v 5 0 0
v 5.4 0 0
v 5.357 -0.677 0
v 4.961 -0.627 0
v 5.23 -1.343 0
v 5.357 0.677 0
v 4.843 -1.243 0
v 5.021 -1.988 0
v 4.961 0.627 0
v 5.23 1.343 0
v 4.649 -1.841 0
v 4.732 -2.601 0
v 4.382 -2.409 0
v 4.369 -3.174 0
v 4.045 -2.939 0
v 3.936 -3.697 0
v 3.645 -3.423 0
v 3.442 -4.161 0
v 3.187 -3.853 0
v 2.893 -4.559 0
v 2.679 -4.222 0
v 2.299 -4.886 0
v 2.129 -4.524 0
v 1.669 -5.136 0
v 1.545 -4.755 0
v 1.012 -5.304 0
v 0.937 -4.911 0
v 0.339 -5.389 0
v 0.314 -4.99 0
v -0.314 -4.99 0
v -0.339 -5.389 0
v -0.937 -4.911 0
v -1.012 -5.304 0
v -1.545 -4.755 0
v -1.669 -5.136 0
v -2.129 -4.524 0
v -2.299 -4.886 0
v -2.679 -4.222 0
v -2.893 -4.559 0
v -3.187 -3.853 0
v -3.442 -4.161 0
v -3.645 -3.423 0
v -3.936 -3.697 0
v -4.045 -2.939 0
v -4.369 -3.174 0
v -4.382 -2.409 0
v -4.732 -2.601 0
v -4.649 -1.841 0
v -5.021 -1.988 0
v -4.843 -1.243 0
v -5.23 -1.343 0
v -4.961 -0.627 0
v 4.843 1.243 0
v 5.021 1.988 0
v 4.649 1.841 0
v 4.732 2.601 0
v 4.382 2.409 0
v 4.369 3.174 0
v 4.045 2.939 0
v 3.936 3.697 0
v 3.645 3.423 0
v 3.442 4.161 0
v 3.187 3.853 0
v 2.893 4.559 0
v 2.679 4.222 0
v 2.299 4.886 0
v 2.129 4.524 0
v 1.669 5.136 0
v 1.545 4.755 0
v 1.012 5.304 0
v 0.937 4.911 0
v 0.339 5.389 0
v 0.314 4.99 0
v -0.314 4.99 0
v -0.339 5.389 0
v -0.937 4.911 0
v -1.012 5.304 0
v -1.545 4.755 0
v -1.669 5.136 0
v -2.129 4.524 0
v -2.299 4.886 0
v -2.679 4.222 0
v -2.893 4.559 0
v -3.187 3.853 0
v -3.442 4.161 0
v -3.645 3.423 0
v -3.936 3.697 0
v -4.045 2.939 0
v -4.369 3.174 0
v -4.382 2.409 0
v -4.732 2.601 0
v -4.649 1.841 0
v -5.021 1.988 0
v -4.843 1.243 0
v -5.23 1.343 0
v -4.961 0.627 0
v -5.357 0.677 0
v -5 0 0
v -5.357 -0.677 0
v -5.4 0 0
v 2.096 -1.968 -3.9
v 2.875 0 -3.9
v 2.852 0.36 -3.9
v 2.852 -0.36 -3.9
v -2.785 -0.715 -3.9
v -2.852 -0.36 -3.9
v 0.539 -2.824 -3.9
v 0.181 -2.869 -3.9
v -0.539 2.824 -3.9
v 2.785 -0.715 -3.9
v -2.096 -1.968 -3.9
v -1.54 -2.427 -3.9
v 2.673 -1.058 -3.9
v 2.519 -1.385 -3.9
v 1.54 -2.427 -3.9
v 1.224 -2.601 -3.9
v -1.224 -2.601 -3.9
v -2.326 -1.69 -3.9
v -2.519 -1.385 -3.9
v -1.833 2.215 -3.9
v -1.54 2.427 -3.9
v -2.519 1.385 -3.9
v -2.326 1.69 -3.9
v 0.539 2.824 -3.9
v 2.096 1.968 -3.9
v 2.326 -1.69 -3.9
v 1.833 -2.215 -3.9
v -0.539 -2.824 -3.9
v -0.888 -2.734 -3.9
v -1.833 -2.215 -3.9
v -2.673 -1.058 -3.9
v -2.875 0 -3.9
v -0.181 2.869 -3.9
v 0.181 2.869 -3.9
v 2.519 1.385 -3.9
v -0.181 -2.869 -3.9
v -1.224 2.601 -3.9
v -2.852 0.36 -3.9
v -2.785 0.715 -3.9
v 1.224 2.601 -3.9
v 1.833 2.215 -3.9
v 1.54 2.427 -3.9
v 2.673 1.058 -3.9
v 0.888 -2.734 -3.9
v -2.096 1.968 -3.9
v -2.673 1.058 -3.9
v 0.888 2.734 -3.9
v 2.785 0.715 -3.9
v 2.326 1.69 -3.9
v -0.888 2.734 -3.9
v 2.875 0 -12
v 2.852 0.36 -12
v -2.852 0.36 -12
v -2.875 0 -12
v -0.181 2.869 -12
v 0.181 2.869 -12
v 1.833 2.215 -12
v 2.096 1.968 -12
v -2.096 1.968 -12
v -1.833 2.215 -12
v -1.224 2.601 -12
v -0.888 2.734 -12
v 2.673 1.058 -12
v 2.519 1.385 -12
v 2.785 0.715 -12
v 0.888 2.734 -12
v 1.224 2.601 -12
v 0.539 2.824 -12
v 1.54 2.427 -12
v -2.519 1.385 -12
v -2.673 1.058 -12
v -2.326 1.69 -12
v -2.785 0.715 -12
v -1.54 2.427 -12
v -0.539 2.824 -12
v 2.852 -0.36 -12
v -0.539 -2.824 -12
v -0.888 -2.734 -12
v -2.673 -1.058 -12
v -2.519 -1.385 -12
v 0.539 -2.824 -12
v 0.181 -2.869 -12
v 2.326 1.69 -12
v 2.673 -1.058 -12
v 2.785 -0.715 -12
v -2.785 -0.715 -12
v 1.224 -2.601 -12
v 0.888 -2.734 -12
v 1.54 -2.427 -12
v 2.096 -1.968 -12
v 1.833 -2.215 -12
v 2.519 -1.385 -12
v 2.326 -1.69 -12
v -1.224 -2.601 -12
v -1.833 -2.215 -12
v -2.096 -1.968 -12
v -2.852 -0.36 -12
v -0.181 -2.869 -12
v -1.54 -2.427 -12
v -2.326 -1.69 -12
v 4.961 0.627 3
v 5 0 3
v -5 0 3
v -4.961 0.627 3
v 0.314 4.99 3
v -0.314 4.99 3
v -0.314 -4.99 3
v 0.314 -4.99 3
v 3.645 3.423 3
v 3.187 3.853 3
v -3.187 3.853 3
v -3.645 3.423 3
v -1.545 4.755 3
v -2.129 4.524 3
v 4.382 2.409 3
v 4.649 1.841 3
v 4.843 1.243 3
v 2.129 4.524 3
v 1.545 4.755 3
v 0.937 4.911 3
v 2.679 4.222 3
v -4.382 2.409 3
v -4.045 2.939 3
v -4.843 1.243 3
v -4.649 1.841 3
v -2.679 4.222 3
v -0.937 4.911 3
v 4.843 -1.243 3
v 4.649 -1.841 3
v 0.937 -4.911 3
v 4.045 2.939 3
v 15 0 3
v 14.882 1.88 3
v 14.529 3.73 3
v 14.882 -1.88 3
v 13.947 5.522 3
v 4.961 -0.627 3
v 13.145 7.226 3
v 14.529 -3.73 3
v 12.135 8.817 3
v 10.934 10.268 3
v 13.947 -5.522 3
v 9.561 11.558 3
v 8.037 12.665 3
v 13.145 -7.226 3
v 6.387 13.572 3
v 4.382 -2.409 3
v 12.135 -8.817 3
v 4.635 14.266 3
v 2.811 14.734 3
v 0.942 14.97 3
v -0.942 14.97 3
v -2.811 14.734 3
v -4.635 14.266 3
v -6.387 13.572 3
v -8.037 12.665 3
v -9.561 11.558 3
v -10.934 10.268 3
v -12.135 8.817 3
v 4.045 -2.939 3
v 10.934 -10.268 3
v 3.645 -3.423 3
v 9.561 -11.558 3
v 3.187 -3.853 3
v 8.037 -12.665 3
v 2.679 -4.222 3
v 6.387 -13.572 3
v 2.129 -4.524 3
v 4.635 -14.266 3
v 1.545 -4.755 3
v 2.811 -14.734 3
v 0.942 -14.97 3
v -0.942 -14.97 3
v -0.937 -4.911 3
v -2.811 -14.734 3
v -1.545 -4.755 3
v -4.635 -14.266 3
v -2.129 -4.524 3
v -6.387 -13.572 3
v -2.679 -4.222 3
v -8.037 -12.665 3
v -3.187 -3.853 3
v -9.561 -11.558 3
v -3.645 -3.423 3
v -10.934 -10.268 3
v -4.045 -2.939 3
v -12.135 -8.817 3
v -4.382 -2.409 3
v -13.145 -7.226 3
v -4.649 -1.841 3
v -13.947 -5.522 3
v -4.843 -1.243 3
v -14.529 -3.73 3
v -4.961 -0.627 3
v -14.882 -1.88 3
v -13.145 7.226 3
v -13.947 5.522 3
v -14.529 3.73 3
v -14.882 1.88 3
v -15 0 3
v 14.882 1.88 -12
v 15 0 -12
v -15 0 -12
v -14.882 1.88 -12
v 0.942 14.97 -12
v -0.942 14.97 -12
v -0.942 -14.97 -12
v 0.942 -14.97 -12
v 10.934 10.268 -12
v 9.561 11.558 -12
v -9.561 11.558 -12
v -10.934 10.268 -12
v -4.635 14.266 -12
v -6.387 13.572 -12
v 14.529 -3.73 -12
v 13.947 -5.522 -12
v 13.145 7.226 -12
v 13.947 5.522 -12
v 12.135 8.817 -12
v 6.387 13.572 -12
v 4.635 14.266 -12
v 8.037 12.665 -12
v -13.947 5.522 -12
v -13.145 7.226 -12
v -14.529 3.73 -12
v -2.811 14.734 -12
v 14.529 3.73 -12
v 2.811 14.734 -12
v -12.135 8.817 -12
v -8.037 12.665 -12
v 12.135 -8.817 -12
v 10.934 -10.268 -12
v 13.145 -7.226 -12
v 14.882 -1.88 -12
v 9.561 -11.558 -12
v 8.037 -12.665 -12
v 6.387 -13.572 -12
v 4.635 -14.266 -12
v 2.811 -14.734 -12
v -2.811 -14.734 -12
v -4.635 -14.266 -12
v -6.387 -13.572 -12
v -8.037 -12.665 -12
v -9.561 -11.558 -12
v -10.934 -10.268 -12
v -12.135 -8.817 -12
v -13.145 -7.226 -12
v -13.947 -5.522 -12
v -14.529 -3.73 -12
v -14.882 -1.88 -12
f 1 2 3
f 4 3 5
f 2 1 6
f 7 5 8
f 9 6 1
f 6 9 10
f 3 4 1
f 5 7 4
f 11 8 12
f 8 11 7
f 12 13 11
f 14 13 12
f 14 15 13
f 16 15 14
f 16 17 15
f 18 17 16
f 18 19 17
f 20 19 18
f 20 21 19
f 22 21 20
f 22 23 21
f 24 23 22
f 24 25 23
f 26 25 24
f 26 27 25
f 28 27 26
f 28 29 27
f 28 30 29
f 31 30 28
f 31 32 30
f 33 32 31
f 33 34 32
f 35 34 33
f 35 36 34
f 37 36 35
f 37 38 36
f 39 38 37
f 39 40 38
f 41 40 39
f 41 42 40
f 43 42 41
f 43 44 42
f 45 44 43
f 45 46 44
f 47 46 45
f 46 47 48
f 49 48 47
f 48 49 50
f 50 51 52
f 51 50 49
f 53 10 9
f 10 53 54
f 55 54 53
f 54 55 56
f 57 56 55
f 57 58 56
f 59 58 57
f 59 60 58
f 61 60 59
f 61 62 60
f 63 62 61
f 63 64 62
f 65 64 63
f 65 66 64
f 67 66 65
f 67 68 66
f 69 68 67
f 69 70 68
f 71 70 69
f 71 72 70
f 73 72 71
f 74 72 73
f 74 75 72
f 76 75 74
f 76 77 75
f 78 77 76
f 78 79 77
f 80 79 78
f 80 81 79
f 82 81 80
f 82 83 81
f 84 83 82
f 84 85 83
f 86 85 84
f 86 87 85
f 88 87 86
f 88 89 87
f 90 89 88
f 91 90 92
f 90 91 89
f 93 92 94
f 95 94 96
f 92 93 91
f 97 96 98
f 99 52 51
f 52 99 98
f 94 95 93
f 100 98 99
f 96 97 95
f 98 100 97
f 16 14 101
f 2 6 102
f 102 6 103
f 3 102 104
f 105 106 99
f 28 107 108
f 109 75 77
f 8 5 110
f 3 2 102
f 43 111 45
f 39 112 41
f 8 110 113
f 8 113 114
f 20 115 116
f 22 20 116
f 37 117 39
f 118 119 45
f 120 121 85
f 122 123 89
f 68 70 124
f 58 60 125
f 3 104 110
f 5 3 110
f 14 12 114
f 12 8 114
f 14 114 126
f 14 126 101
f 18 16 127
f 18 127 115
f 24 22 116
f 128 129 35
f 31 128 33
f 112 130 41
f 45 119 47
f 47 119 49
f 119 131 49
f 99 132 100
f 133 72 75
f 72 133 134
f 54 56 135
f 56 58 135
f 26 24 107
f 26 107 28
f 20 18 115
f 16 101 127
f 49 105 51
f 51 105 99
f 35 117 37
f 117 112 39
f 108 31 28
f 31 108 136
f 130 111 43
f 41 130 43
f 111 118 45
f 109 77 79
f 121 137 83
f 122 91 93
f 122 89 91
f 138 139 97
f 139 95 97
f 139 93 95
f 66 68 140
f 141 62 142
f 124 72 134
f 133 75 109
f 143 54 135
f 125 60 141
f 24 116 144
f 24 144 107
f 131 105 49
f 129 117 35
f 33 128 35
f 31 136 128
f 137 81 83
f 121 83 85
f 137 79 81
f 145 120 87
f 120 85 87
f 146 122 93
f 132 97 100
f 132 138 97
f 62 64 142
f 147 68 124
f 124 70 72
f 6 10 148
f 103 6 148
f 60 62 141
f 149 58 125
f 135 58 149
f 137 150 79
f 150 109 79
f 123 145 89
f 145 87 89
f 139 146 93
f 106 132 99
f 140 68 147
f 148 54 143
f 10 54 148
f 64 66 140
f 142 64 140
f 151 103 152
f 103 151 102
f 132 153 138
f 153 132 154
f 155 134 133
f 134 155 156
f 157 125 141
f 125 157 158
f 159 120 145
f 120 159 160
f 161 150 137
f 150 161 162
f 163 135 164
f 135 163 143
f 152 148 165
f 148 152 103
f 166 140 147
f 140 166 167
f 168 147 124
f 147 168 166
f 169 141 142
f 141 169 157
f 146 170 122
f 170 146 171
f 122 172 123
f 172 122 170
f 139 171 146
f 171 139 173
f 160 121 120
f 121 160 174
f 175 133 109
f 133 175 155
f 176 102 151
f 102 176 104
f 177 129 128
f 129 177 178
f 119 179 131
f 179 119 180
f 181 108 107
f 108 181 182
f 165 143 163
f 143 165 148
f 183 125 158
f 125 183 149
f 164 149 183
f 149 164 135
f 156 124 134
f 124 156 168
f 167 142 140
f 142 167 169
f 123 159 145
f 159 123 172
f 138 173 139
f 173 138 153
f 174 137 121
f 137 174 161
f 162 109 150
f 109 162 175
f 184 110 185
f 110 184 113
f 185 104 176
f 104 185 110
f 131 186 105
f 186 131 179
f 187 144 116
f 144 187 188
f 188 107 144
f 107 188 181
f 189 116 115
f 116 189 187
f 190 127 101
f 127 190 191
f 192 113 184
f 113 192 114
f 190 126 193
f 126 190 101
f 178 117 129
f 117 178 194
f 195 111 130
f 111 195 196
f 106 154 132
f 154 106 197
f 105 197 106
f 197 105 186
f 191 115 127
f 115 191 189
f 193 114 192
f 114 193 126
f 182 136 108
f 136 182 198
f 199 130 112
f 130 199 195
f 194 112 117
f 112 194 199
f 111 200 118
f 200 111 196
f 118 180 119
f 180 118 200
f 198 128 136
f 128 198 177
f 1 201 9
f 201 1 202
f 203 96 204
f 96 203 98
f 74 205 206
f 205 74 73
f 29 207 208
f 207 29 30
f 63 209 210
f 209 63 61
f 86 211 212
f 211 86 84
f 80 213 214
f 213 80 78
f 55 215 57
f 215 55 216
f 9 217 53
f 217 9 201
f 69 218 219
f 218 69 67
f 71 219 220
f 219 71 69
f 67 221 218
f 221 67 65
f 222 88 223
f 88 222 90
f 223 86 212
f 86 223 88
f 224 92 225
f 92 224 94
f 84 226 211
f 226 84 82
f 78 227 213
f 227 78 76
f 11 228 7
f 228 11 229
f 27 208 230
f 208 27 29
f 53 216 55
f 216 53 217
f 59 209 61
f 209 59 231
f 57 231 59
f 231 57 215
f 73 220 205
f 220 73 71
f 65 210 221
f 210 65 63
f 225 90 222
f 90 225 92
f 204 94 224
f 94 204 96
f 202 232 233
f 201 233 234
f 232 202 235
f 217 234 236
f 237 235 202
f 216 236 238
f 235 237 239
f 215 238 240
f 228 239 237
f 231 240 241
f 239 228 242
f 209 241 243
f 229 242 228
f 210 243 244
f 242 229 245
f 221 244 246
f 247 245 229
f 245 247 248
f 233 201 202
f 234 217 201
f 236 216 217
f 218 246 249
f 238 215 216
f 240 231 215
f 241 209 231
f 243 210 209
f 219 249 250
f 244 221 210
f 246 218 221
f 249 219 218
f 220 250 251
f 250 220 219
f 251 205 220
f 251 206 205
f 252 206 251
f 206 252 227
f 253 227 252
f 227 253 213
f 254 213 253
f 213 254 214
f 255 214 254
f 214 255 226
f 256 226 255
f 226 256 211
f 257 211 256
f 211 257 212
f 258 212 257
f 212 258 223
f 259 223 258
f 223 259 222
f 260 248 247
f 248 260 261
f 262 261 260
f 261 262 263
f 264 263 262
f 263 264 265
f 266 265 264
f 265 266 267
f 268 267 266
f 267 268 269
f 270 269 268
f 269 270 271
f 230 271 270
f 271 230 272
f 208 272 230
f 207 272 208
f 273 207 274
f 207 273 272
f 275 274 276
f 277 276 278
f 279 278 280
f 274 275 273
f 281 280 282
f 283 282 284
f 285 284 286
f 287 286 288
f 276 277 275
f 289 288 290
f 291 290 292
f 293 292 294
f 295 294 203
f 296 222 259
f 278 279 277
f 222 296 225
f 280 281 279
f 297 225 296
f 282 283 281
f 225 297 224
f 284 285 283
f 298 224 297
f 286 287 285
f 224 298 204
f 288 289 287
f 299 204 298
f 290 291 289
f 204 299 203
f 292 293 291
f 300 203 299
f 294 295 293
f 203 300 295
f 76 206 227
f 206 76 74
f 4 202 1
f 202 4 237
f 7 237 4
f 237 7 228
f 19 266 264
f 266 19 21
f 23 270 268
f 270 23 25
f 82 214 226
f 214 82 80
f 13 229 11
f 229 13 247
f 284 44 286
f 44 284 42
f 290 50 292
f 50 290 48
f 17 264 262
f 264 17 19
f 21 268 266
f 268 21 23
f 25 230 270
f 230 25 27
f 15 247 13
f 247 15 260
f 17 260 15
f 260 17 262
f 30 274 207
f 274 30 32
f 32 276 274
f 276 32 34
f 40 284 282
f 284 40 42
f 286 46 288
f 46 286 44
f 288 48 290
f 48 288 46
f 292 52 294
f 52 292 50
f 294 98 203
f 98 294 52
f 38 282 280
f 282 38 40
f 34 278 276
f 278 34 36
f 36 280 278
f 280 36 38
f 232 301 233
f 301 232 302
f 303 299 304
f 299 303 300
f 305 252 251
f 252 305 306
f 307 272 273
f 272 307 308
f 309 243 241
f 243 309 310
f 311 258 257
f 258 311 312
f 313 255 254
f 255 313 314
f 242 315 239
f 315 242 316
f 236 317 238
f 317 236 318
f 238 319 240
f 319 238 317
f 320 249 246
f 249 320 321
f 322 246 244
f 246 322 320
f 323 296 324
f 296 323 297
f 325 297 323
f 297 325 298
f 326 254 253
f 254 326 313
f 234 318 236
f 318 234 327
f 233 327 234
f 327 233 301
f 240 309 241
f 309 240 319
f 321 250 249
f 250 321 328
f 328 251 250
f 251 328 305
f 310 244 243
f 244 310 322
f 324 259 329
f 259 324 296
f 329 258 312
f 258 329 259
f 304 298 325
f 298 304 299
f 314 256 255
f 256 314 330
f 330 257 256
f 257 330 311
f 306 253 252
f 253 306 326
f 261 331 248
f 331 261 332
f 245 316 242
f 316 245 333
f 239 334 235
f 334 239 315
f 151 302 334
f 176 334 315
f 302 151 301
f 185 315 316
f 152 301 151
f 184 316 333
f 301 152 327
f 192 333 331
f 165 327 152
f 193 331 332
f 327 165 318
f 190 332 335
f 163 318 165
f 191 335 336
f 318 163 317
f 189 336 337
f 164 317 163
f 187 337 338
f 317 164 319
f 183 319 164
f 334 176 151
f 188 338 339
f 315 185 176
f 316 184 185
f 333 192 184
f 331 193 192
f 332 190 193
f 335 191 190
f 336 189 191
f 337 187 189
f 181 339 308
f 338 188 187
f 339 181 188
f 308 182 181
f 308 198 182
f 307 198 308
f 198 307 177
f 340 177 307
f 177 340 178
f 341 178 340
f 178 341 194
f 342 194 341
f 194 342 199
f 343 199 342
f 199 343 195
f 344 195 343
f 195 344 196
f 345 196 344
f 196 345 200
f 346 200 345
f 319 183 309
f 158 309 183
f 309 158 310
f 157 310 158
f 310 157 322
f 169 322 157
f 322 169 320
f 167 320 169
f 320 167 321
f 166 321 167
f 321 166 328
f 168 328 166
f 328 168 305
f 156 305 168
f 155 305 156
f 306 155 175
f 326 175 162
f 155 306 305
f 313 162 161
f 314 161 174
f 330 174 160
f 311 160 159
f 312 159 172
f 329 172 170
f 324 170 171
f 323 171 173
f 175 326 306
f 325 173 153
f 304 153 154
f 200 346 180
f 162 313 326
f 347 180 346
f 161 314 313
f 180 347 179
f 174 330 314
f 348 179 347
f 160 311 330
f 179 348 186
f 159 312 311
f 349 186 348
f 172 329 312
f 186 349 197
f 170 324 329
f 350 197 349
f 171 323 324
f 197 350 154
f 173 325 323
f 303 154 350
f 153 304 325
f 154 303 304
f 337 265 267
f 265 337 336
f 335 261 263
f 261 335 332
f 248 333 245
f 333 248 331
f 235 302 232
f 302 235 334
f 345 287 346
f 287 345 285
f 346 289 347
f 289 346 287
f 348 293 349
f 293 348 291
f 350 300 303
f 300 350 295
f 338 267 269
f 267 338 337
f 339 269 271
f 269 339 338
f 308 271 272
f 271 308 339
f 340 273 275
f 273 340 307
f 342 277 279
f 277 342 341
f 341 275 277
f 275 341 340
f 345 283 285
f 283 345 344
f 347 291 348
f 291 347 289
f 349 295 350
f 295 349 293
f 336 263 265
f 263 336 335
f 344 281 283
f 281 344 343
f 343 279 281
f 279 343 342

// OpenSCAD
$fn = 50;

difference() {
	union() {
		translate(v = [0, 0, -12.0]) {
			cylinder(h = 15, r = 15.0);
		}
	}
	union() {
		translate(v = [0, 0, 0]) {
			rotate(a = [0, 0, 0]) {
				difference() {
					union() {
						translate(v = [0, 0, -15.0]) {
							cylinder(h = 15, r = 2.6);
						}
						translate(v = [0, 0, -3.9]) {
							cylinder(h = 3.9, r1 = 2.875, r2 = 5.4);
						}
						translate(v = [0, 0, -15.0]) {
							cylinder(h = 15, r = 2.875);
						}
						translate(v = [0, 0, -15.0]) {
							cylinder(h = 15, r = 2.6);
						}
					}
					union();
				}
			}
		}
		#cylinder(h = 3, r = 5.0);
	}
}
